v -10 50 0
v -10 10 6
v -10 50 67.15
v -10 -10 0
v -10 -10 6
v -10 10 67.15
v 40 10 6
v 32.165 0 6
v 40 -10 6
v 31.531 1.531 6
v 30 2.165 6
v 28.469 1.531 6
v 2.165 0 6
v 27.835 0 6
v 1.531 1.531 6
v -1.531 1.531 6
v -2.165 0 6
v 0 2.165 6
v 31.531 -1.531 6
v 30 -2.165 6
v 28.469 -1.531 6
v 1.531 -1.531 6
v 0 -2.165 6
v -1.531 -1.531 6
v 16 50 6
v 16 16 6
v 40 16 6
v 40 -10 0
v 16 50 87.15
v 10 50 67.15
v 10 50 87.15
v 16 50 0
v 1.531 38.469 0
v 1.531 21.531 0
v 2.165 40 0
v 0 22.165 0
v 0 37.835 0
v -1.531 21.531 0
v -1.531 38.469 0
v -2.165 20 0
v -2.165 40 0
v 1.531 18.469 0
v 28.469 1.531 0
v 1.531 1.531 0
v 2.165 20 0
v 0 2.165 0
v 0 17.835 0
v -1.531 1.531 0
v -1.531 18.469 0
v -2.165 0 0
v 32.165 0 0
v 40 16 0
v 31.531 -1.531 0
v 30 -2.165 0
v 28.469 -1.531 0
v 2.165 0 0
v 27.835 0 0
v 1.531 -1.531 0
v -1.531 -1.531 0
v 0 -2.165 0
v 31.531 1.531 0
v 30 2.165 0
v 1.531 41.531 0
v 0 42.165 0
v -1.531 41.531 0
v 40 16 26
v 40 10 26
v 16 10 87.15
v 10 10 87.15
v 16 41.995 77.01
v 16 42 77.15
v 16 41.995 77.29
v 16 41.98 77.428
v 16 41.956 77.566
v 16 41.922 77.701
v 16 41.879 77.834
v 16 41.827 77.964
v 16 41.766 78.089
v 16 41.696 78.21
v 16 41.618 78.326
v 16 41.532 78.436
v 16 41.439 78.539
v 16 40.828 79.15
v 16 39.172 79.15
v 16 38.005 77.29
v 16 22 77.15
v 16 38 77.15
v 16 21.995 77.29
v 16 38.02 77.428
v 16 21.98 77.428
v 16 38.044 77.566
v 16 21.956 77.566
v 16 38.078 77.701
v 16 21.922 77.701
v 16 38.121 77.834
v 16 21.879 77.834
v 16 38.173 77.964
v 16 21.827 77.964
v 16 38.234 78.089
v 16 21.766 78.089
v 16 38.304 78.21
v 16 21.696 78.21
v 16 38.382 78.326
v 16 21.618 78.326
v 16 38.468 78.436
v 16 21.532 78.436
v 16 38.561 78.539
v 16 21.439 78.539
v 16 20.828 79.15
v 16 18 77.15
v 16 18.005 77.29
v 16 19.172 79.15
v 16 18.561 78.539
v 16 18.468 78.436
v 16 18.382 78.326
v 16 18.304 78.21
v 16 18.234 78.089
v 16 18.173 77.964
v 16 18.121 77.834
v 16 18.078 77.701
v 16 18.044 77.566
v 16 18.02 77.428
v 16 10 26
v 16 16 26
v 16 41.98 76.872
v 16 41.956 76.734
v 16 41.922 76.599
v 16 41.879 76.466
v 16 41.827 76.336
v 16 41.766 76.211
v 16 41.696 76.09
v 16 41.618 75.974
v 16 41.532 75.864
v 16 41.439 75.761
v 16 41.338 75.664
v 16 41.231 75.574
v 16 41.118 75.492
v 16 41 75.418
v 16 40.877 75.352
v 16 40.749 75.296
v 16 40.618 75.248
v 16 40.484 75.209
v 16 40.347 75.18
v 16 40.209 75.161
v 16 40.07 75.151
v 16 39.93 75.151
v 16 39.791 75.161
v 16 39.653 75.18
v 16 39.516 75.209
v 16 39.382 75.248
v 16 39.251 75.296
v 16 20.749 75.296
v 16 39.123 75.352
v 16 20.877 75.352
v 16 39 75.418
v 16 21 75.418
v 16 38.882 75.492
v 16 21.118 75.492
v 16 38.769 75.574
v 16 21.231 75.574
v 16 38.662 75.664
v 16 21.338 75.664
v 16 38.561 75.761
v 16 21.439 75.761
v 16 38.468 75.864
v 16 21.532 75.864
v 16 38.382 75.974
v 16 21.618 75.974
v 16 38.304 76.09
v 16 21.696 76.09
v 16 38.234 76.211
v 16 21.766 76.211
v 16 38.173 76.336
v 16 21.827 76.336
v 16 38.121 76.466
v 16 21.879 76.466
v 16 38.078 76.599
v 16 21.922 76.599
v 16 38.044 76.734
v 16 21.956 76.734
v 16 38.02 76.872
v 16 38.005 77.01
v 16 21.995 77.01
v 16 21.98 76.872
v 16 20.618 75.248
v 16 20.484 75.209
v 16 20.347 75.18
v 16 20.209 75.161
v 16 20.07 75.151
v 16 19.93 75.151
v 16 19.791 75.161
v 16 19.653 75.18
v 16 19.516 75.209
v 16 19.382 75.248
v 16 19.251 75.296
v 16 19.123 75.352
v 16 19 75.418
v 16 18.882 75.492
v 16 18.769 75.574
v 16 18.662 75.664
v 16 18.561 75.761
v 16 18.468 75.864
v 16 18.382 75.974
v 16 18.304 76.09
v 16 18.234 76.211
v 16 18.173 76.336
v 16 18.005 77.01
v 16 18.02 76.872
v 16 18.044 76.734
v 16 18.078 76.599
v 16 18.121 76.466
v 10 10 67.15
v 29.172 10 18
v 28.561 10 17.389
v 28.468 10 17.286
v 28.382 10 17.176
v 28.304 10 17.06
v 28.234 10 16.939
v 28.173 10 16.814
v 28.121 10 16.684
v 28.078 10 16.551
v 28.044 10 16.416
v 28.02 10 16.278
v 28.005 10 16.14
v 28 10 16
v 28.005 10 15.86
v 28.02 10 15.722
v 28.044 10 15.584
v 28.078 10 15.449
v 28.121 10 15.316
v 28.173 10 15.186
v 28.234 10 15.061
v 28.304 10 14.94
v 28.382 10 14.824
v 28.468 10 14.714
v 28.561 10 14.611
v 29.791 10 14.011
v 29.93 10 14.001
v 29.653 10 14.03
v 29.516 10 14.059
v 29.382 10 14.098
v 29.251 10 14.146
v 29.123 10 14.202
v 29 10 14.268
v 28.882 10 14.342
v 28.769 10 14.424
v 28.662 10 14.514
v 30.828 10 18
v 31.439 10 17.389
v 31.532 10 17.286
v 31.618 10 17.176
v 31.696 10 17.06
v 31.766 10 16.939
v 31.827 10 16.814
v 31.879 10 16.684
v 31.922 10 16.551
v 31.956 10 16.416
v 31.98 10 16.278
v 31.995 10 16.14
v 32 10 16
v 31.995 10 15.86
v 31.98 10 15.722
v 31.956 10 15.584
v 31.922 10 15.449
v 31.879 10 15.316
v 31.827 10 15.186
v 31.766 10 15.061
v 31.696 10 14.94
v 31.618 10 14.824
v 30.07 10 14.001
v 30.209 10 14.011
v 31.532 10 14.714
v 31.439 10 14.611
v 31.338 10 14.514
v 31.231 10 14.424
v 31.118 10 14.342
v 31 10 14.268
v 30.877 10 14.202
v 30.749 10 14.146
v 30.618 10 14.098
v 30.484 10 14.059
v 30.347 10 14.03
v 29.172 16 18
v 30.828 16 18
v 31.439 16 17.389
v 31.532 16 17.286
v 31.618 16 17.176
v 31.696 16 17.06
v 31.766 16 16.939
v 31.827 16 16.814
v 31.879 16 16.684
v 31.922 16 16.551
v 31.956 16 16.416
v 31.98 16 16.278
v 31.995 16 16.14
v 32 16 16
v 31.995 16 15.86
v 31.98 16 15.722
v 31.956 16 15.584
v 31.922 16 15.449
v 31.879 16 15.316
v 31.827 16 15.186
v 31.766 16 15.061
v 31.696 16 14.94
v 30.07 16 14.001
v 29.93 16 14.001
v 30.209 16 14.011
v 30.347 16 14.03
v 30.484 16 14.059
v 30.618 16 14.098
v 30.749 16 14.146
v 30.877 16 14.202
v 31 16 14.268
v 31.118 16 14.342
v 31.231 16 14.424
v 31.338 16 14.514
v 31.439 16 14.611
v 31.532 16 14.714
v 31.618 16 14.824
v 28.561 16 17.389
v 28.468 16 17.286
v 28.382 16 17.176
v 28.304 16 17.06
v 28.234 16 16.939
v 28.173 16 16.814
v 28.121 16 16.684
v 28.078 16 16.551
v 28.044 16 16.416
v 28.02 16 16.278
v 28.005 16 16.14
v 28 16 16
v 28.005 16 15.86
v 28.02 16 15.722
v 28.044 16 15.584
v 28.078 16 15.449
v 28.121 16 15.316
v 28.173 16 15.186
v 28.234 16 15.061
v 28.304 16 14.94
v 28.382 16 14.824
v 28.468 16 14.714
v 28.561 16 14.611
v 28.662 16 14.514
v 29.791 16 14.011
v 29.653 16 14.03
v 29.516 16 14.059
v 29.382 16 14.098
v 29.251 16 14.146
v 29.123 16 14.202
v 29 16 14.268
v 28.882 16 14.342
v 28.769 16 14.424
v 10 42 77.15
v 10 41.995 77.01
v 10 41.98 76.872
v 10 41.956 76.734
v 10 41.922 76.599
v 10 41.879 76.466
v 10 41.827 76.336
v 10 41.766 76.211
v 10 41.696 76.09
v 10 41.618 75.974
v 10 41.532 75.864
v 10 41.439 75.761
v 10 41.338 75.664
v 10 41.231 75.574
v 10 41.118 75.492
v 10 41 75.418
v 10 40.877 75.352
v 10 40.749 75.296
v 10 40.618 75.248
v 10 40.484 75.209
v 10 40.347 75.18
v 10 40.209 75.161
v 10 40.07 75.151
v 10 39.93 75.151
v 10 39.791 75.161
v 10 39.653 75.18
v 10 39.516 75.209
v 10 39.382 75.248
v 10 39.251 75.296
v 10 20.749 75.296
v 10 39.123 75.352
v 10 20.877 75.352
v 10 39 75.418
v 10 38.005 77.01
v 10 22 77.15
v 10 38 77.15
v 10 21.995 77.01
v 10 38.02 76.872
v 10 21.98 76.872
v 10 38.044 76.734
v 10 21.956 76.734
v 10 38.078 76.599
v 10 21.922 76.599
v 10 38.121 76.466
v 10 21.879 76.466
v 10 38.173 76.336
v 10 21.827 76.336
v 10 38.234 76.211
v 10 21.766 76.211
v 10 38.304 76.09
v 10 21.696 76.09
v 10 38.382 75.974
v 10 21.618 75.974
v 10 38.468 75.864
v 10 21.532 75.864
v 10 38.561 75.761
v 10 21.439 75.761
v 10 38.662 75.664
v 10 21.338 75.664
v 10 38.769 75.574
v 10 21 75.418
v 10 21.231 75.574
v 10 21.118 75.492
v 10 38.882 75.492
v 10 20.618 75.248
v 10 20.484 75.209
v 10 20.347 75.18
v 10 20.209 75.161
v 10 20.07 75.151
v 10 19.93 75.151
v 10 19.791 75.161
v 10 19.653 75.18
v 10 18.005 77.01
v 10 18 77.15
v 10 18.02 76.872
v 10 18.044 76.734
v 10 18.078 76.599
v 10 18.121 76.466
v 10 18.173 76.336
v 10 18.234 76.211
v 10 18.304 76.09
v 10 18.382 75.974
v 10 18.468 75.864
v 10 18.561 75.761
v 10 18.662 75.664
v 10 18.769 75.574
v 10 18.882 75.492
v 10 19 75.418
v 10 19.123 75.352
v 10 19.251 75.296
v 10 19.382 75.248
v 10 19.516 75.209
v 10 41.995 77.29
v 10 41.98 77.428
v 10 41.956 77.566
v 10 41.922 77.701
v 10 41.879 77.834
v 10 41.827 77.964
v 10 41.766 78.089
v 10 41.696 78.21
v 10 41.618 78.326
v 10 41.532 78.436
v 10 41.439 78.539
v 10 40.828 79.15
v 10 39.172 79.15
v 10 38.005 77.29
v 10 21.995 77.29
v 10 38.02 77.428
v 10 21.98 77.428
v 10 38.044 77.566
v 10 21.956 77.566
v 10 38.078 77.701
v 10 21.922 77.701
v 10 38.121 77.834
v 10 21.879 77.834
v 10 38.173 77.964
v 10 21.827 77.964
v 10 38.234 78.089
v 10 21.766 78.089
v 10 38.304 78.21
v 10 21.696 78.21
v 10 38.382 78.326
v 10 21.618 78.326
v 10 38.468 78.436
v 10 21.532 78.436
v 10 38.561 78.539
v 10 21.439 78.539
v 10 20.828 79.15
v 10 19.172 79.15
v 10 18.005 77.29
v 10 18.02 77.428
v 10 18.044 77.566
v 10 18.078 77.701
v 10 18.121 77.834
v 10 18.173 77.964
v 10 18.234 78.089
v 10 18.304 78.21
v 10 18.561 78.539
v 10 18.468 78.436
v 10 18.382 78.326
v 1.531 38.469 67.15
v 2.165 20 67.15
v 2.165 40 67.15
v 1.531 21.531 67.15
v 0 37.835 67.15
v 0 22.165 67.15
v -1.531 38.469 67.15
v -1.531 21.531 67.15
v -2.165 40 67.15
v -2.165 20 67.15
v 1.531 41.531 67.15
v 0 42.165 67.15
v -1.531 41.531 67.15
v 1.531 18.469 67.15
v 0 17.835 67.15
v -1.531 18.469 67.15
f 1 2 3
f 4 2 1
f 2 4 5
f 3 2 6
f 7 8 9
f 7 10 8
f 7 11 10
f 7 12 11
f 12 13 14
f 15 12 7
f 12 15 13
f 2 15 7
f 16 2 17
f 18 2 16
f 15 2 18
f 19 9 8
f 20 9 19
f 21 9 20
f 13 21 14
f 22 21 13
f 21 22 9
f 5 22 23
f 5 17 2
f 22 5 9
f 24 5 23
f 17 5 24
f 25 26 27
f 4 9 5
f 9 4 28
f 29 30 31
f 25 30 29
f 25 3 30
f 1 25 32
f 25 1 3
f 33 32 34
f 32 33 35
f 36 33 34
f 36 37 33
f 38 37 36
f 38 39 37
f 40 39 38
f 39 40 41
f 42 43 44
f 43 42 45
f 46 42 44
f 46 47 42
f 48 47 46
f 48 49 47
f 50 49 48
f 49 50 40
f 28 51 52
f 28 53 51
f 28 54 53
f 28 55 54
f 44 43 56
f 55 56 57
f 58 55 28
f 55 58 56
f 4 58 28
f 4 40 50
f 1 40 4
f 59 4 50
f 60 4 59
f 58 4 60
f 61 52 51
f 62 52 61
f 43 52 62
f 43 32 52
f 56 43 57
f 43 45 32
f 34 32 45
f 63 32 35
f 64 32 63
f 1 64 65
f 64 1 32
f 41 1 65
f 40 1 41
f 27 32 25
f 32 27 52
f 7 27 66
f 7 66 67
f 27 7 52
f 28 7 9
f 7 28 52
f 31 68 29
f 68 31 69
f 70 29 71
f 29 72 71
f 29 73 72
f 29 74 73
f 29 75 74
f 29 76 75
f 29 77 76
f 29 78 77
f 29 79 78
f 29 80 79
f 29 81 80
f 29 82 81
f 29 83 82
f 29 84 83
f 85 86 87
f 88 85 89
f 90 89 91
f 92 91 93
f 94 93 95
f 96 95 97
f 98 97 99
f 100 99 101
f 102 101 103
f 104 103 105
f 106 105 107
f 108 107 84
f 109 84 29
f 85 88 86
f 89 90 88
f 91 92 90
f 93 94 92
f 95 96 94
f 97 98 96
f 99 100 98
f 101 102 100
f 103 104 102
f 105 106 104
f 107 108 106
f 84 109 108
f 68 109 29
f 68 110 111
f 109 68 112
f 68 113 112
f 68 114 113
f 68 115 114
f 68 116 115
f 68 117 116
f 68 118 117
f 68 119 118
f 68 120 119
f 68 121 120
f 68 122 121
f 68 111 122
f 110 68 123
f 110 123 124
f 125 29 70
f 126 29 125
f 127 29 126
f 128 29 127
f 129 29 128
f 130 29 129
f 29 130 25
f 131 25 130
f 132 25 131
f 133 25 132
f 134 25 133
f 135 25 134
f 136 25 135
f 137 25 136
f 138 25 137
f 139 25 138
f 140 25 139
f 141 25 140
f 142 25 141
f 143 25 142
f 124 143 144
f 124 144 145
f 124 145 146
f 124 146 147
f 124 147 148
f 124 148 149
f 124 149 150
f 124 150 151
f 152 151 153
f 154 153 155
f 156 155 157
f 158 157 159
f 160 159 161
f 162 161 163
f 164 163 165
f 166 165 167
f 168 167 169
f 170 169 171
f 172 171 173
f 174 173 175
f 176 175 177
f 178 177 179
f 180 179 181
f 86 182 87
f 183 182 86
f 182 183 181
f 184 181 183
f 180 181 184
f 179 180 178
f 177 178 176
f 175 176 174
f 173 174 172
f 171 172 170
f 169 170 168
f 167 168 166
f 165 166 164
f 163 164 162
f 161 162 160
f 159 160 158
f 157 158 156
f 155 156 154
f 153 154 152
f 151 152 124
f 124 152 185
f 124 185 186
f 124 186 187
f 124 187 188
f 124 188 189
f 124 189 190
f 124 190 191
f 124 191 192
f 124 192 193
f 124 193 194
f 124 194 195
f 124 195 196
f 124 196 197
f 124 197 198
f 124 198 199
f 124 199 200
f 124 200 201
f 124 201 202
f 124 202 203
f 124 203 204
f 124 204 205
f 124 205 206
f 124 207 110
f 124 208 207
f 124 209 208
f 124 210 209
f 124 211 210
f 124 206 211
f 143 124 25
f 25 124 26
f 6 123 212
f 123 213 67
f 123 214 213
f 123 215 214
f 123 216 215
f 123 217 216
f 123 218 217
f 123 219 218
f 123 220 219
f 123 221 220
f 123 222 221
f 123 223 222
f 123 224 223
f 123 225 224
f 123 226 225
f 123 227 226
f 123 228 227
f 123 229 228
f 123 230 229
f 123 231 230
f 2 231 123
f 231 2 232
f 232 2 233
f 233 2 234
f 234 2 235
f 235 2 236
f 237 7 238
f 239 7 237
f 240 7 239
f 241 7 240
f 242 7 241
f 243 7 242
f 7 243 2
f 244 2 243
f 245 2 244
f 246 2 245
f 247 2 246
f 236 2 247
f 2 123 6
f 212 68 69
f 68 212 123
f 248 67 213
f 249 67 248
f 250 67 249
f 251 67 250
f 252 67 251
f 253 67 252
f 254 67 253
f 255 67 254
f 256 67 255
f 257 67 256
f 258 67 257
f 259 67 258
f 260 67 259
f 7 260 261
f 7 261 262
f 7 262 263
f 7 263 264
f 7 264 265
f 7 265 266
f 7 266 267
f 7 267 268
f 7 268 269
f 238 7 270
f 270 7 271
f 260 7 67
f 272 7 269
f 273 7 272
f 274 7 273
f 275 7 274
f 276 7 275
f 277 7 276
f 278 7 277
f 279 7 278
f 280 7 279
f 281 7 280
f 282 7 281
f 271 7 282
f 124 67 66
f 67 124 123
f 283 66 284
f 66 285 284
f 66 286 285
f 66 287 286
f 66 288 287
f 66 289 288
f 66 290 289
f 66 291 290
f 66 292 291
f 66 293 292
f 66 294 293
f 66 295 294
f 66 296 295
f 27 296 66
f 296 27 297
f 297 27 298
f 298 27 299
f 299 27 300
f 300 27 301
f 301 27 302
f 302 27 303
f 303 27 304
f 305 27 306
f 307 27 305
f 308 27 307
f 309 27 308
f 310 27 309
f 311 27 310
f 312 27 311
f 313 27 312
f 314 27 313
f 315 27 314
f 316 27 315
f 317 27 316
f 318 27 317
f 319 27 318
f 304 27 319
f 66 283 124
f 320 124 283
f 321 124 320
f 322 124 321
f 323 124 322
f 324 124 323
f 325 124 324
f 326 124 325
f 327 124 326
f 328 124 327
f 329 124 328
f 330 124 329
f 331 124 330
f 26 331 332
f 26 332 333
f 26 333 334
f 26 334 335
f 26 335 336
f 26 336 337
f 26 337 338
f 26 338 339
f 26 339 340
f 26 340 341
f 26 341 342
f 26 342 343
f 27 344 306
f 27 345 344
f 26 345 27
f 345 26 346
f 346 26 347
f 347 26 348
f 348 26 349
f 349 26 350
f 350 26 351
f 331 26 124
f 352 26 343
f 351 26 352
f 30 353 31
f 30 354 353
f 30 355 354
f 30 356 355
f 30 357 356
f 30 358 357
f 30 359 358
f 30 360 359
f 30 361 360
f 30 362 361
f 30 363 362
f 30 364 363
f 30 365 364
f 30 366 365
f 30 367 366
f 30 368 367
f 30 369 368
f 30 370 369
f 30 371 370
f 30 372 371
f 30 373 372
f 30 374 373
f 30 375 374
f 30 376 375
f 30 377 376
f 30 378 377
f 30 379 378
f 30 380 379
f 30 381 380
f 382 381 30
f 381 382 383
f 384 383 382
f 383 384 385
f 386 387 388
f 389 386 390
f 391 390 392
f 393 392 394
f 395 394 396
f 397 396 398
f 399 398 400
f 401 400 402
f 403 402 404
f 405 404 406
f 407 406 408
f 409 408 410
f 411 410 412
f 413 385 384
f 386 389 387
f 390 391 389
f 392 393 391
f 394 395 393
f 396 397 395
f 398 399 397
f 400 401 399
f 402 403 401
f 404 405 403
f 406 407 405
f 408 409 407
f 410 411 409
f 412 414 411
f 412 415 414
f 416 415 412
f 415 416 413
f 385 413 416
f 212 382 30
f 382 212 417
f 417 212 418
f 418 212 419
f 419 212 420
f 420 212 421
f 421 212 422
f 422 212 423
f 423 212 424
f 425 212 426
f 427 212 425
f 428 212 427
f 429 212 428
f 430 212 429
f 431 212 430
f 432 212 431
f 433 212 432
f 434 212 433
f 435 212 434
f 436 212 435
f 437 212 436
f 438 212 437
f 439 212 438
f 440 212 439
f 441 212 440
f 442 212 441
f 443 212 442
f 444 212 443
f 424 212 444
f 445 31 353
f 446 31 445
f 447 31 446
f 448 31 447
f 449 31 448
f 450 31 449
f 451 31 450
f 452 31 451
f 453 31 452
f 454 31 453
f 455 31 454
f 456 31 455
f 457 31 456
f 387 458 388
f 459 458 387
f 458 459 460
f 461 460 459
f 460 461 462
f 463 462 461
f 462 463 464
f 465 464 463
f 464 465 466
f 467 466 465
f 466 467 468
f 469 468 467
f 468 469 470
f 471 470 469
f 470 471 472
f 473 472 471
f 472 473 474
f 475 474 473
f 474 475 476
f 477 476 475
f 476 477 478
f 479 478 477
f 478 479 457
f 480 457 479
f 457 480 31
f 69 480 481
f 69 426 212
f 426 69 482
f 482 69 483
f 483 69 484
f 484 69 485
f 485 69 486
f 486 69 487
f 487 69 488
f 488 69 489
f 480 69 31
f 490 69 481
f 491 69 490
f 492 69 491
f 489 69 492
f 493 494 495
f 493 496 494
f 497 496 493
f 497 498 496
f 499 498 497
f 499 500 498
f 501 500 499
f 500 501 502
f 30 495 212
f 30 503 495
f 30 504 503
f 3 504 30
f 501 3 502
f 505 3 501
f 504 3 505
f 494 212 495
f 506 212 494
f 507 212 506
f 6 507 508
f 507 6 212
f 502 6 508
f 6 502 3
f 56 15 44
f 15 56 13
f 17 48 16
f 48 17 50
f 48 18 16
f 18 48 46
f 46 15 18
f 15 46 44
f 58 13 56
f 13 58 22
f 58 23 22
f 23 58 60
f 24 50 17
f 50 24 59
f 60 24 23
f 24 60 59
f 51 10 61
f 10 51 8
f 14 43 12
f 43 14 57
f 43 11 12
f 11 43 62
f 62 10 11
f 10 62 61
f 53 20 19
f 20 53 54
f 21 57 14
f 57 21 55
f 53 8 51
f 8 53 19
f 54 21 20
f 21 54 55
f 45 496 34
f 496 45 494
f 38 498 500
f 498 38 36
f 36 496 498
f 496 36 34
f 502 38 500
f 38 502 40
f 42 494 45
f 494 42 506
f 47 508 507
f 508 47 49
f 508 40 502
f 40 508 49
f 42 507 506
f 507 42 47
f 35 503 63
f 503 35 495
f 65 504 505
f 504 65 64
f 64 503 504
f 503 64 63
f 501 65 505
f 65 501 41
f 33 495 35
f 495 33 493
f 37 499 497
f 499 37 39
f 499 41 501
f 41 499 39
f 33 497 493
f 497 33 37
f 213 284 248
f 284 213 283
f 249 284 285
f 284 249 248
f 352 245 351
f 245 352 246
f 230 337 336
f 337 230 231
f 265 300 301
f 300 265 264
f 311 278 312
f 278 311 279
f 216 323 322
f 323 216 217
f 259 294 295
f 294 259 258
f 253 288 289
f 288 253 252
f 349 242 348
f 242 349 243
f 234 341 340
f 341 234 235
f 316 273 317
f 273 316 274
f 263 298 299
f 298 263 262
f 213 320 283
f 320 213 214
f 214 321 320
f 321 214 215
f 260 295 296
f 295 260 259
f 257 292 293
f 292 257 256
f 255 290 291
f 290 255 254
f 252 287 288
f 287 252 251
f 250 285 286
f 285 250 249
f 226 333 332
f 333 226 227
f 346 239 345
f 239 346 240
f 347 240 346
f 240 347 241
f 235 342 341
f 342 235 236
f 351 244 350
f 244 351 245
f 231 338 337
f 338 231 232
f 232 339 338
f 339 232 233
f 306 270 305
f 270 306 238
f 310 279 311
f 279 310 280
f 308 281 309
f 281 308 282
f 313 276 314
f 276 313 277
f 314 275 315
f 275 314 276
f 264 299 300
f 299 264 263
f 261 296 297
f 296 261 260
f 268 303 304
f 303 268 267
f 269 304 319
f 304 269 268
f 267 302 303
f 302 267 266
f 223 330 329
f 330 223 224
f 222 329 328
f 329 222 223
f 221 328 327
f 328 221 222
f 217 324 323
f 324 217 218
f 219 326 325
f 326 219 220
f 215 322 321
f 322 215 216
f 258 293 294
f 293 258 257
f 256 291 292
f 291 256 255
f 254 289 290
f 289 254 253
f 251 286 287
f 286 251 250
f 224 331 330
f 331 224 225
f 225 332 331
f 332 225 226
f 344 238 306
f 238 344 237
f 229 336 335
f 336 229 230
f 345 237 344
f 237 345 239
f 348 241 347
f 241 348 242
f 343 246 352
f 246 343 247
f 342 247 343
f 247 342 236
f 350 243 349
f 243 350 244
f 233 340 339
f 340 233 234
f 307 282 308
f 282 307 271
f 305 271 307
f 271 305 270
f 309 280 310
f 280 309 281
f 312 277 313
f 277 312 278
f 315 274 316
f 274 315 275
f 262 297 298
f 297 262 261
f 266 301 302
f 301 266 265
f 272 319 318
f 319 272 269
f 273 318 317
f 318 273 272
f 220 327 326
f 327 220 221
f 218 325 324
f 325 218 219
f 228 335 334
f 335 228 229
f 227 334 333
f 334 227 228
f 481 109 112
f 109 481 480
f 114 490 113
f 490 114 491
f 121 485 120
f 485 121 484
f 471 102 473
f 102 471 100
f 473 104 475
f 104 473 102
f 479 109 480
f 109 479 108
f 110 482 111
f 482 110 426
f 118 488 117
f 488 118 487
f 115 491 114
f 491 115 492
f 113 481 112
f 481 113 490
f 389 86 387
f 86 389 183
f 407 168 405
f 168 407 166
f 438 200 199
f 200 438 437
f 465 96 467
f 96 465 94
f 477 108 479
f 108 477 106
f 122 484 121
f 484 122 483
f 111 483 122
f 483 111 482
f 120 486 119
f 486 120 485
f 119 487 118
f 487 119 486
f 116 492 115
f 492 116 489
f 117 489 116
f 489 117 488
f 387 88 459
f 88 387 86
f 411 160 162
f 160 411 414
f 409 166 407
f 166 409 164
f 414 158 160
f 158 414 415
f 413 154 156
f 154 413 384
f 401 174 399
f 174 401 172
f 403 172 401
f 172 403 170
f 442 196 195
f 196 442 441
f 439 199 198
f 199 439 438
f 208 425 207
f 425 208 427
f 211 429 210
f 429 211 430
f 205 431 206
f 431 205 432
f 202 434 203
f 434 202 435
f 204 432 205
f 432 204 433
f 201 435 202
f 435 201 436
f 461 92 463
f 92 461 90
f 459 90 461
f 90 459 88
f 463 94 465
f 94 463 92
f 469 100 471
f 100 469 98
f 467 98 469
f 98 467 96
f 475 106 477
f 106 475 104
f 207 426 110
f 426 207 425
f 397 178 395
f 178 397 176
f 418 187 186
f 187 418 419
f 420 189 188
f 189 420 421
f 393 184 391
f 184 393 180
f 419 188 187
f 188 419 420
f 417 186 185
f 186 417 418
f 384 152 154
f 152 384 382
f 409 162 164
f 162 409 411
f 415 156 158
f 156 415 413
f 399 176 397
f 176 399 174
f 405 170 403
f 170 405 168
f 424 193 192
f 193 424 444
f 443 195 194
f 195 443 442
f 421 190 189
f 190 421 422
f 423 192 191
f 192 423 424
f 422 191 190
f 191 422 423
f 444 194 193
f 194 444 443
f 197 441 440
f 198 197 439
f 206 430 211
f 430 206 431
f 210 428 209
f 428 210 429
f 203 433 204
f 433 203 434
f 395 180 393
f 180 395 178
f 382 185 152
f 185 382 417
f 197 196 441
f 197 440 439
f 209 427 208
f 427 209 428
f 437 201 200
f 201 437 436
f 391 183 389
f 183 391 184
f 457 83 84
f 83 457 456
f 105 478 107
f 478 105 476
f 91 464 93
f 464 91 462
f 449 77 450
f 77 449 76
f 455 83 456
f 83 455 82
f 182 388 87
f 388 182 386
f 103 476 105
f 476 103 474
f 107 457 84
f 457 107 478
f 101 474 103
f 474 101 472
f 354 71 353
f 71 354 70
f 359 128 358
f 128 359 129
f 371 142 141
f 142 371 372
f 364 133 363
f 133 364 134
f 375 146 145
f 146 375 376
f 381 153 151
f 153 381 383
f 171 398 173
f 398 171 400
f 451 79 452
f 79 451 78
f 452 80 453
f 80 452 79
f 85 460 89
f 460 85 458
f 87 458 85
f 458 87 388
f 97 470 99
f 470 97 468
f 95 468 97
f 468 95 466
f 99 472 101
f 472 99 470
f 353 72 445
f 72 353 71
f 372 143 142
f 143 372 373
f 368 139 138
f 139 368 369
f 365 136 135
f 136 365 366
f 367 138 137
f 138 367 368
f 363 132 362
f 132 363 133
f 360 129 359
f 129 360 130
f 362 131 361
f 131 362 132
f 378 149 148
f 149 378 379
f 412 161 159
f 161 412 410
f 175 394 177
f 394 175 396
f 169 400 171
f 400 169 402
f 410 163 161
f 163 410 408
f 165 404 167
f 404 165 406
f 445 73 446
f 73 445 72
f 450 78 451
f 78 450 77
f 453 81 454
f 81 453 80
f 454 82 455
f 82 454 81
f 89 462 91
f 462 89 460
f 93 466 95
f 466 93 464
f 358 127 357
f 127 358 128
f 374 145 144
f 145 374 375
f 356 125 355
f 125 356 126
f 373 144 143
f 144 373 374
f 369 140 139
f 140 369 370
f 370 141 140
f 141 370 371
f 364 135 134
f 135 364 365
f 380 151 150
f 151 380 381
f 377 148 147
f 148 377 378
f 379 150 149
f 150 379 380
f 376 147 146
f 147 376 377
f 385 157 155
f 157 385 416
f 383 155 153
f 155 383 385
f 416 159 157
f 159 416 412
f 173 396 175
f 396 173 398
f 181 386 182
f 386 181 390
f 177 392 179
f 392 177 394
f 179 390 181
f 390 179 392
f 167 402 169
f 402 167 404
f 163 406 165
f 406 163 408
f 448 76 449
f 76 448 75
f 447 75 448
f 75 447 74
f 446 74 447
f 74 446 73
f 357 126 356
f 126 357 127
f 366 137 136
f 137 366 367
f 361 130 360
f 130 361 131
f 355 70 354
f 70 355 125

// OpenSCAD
// file: trunctear.scad
//A module for truncated tear drops.

trunctear(1, 0.5, $fn = 90);

module trunctear(hei, radian, cent = false)
{
    linear_extrude(height = hei, center = cent)
        hull()
        {
            circle(r = radian);
            translate([0, radian/2])
                square([2*(radian*(2*cos(45)-1)), radian], center = true);
        }
}
// file: polyhole.scad
// The Cylinder is dead! Long live the Cylinder!
// A module for a polyhole by radius, based on Nophead's work.

module polyhole(h, r, cent = false)
{
    n = max(round(4 * r), 3);
    cylinder(h = h, r = r / cos(180 / n), $fn = n, center = cent);
}
// main file
// Bottom Brace

use<polyhole.scad>
use<trunctear.scad>

LowerBrace();

module LowerBrace()
{
    dist = 46+42.3/2+20;
    
    difference()
    {
        union()
        {
            hull()
            {
                translate([3, 20, 3])
                    cube([20+6, 60, 6], center = true);
                translate([15, 3, 3])
                    cube([50, 20+6, 6], center = true);
            }
            translate([3, 30, dist/2])
                cube([20+6, 40, dist], center = true);
            translate([15, 13, 13])
                cube([50, 6, 26], center = true);
        }
        translate([0, 30, dist-10])
            cube([20, 40, 20], center = true);
        polyhole(dist, 2);
        translate([30, 0, 0])
            polyhole(dist, 2);
        translate([0, 20, 0])
            polyhole(dist, 2);
        translate([0, 40, 0])
            polyhole(dist, 2);
        translate([30, 10, 16])
            rotate([90, 0, 180])
                trunctear(6, 2, $fn = 90);
        translate([10, 20, dist-10])
            rotate([90, 0, 90])
                trunctear(6, 2, $fn = 90);
        translate([10, 40, dist-10])
            rotate([90, 0, 90])
                trunctear(6, 2, $fn = 90);
    }
}
